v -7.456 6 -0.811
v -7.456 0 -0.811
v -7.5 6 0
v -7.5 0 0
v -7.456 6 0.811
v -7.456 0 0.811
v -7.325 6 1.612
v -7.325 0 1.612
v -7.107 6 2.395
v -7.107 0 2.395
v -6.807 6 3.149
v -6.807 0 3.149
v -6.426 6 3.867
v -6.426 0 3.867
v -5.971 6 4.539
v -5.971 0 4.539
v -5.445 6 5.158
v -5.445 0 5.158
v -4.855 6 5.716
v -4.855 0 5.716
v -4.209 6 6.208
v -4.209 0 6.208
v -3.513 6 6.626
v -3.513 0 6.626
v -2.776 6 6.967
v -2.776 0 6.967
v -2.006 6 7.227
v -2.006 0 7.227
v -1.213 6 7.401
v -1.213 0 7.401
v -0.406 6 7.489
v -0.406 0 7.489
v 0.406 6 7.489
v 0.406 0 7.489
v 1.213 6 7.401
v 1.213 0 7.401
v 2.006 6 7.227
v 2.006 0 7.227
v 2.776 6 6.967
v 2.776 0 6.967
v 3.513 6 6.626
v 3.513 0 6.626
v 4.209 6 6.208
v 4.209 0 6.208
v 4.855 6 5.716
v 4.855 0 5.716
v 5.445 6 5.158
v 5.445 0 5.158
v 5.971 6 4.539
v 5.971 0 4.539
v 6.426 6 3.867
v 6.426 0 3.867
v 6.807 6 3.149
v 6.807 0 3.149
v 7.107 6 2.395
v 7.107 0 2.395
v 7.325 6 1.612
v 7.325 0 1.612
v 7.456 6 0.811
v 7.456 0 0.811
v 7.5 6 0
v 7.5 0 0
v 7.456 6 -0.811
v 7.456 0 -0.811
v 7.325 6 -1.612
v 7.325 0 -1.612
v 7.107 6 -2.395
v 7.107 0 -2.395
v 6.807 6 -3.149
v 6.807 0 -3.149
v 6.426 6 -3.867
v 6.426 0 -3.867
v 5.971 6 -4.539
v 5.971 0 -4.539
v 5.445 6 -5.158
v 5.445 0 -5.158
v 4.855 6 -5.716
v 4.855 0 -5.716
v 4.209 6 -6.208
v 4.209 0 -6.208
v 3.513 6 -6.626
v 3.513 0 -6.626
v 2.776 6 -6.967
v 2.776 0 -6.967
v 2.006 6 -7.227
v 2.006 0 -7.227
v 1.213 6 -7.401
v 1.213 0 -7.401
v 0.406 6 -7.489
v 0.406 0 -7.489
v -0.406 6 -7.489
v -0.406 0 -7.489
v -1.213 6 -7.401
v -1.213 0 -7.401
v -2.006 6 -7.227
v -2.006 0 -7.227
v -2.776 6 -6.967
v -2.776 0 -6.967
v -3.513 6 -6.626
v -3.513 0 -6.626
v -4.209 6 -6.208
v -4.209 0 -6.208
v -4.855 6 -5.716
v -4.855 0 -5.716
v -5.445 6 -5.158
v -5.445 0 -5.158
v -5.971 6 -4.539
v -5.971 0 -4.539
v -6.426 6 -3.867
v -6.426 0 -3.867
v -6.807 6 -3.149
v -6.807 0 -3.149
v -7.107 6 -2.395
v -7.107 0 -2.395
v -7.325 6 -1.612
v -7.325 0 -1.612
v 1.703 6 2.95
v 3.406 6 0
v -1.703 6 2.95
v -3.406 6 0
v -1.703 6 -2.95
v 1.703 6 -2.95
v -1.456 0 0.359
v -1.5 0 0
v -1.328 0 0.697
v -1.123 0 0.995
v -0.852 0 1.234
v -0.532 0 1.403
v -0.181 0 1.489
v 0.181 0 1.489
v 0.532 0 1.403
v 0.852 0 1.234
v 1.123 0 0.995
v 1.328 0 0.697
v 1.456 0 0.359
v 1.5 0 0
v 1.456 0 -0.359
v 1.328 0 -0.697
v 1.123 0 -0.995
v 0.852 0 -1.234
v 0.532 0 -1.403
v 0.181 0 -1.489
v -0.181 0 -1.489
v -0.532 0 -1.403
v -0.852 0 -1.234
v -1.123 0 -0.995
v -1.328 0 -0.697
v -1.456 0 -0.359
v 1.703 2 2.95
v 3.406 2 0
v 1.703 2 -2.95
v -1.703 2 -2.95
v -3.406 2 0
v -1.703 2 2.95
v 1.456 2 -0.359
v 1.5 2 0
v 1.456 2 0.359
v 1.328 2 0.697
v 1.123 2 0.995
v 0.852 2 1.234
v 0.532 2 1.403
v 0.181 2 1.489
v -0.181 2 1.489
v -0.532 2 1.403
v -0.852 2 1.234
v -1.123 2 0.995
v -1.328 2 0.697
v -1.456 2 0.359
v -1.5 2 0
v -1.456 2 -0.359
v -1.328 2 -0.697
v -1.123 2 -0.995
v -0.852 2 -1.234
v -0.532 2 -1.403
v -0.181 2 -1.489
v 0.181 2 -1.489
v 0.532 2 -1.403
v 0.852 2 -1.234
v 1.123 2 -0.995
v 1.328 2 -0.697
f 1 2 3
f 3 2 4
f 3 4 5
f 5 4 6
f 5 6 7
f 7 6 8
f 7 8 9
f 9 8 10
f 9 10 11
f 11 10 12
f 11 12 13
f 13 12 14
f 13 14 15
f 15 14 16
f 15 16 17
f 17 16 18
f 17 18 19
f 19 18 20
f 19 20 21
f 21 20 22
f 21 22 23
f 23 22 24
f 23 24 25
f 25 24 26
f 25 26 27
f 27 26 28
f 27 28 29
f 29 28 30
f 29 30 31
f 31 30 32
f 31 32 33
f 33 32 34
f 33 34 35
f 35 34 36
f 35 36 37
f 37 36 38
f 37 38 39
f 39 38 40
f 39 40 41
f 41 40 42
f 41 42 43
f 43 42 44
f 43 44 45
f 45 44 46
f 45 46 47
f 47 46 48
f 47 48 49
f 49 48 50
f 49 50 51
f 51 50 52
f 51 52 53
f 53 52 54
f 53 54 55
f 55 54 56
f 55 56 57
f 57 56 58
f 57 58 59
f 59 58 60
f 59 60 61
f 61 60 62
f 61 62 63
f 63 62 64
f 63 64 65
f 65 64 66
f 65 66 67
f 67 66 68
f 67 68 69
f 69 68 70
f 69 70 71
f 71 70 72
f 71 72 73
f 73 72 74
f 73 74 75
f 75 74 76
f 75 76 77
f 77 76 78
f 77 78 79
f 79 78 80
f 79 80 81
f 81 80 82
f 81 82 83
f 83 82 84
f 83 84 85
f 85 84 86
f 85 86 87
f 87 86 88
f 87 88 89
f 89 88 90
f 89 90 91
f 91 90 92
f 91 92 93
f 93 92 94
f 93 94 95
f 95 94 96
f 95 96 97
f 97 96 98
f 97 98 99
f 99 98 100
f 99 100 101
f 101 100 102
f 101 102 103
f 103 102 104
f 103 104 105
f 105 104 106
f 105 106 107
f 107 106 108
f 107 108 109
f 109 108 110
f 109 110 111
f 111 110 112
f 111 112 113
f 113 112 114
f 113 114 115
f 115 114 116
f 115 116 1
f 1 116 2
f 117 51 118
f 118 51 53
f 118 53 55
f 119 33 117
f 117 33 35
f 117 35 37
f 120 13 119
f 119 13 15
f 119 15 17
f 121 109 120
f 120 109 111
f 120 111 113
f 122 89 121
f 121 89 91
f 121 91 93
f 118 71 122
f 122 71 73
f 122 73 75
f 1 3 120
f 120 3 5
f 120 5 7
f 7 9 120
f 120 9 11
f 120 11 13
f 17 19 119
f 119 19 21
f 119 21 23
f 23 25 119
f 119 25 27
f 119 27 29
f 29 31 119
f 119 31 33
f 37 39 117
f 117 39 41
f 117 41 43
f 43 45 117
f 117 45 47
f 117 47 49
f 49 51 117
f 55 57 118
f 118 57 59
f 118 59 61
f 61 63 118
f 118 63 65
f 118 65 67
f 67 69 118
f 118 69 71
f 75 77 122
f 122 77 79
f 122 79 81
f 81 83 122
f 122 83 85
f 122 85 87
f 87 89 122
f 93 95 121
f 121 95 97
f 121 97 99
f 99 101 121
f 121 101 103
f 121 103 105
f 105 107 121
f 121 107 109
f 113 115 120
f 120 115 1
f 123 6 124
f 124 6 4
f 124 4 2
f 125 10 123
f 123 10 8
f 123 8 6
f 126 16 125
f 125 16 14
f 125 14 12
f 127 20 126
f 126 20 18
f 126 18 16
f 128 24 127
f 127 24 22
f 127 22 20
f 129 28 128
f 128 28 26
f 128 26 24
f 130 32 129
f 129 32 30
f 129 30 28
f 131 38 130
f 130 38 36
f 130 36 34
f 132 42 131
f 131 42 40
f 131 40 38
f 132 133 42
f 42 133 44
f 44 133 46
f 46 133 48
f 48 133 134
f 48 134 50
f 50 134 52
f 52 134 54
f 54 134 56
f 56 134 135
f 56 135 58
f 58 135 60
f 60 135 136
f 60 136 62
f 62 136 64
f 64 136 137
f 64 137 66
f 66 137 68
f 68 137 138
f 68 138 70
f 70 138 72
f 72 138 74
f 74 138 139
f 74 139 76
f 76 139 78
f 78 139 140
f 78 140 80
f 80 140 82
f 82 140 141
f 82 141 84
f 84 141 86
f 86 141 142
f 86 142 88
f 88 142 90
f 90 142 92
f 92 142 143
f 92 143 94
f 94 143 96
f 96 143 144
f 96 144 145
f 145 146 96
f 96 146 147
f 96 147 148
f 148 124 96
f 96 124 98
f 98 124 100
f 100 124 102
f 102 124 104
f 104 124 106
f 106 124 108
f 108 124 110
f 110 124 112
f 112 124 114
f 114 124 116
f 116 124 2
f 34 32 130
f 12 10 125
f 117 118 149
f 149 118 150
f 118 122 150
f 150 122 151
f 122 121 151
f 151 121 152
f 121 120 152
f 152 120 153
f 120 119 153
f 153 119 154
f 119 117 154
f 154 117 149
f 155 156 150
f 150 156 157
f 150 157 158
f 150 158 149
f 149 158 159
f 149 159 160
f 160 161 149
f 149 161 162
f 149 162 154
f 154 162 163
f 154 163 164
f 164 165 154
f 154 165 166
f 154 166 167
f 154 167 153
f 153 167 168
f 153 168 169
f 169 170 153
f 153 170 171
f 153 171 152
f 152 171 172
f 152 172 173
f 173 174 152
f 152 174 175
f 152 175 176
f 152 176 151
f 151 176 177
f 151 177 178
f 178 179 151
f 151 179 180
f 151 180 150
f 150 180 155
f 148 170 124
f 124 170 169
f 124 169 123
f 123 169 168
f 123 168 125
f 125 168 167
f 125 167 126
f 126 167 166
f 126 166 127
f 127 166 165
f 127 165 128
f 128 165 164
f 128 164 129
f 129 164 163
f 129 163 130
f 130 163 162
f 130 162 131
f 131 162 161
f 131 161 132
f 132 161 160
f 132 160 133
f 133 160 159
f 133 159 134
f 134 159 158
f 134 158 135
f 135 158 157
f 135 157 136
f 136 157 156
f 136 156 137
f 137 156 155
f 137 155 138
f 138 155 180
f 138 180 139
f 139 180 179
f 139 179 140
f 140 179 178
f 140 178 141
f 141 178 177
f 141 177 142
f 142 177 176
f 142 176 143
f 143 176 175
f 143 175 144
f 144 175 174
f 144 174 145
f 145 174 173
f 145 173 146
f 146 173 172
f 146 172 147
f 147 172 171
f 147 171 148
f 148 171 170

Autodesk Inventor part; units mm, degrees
ref_plane "YZ Plane" through (0, 0, 0) normal (1, 0, 0) x (0, 1, 0)
ref_plane "XZ Plane" through (0, 0, 0) normal (0, 1, 0) x (-1, 0, 0)
ref_plane "XY Plane" through (0, 0, 0) normal (0, 0, 1) x (1, 0, 0)
sketch "Boceto1" plane through (0, 0, 0) normal (0, 1, 0) x (-1, 0, 0)
  line L0 (1.5588, -2.7) -> (-1.5588, -2.7)
  line L1 (-1.5588, -2.7) -> (-3.1177, 0)
  line L2 (-3.1177, 0) -> (-1.5588, 2.7)
  line L3 (-1.5588, 2.7) -> (1.5588, 2.7)
  line L4 (1.5588, 2.7) -> (3.1177, 0)
  line L5 (3.1177, 0) -> (1.5588, -2.7)
  line L6 (3.4064, 0) -> (1.7032, 2.95)
  line L7 (1.7032, 2.95) -> (-1.7032, 2.95)
  line L8 (-1.7032, 2.95) -> (-3.4064, 0)
  line L9 (-3.4064, 0) -> (-1.7032, -2.95)
  line L10 (-1.7032, -2.95) -> (1.7032, -2.95)
  line L11 (1.7032, -2.95) -> (3.4064, 0)
  circle A0 centre (0, 0) radius 7.5
  dimension "d0" = 5.4
  dimension "d1" = 0.25
  dimension "d2" = 15
extrude "Extrusión1" add sketch "Boceto1" along normal blind 6 contours L0 L1 L2 L3 L4 L5 | L11 L10 L9 L8 L7 L6 | A0
sketch "Boceto2" plane through (0, 6, 0) normal (0, 1, 0) x (1, 0, 0)
  line L0 (-3.1177, 0) -> (-1.5588, 2.7)
  line L1 (-1.5588, 2.7) -> (1.5588, 2.7)
  line L2 (1.5588, 2.7) -> (3.1177, 0)
  line L3 (3.1177, 0) -> (1.5588, -2.7)
  line L4 (1.5588, -2.7) -> (-1.5588, -2.7)
  line L5 (-1.5588, -2.7) -> (-3.1177, 0)
  line L6 (-3.4064, 0) -> (-1.7032, 2.95)
  line L7 (-1.7032, 2.95) -> (1.7032, 2.95)
  line L8 (1.7032, 2.95) -> (3.4064, 0)
  line L9 (3.4064, 0) -> (1.7032, -2.95)
  line L10 (1.7032, -2.95) -> (-1.7032, -2.95)
  line L11 (-1.7032, -2.95) -> (-3.4064, 0)
  point P0 (0, 0)
  point P1 (0, 0)
  dimension "d5" = 5.4
  dimension "d6" = 0.25
extrude "Extrusión2" cut sketch "Boceto2" against normal blind 4 contours L0 L1 L2 L3 L4 L5 | L6 L7 L8 L9 L10 L11
sketch "Boceto3" plane through (0, 2, 0) normal (0, 1, 0) x (1, 0, 0)
  circle A0 centre (0, 0) radius 7.5 projected
hole "Agujero1" at (0, 2, 0) direction (0, -1, 0) diameter 3 end through all
properties part number "Cabeza_Tornillos"
